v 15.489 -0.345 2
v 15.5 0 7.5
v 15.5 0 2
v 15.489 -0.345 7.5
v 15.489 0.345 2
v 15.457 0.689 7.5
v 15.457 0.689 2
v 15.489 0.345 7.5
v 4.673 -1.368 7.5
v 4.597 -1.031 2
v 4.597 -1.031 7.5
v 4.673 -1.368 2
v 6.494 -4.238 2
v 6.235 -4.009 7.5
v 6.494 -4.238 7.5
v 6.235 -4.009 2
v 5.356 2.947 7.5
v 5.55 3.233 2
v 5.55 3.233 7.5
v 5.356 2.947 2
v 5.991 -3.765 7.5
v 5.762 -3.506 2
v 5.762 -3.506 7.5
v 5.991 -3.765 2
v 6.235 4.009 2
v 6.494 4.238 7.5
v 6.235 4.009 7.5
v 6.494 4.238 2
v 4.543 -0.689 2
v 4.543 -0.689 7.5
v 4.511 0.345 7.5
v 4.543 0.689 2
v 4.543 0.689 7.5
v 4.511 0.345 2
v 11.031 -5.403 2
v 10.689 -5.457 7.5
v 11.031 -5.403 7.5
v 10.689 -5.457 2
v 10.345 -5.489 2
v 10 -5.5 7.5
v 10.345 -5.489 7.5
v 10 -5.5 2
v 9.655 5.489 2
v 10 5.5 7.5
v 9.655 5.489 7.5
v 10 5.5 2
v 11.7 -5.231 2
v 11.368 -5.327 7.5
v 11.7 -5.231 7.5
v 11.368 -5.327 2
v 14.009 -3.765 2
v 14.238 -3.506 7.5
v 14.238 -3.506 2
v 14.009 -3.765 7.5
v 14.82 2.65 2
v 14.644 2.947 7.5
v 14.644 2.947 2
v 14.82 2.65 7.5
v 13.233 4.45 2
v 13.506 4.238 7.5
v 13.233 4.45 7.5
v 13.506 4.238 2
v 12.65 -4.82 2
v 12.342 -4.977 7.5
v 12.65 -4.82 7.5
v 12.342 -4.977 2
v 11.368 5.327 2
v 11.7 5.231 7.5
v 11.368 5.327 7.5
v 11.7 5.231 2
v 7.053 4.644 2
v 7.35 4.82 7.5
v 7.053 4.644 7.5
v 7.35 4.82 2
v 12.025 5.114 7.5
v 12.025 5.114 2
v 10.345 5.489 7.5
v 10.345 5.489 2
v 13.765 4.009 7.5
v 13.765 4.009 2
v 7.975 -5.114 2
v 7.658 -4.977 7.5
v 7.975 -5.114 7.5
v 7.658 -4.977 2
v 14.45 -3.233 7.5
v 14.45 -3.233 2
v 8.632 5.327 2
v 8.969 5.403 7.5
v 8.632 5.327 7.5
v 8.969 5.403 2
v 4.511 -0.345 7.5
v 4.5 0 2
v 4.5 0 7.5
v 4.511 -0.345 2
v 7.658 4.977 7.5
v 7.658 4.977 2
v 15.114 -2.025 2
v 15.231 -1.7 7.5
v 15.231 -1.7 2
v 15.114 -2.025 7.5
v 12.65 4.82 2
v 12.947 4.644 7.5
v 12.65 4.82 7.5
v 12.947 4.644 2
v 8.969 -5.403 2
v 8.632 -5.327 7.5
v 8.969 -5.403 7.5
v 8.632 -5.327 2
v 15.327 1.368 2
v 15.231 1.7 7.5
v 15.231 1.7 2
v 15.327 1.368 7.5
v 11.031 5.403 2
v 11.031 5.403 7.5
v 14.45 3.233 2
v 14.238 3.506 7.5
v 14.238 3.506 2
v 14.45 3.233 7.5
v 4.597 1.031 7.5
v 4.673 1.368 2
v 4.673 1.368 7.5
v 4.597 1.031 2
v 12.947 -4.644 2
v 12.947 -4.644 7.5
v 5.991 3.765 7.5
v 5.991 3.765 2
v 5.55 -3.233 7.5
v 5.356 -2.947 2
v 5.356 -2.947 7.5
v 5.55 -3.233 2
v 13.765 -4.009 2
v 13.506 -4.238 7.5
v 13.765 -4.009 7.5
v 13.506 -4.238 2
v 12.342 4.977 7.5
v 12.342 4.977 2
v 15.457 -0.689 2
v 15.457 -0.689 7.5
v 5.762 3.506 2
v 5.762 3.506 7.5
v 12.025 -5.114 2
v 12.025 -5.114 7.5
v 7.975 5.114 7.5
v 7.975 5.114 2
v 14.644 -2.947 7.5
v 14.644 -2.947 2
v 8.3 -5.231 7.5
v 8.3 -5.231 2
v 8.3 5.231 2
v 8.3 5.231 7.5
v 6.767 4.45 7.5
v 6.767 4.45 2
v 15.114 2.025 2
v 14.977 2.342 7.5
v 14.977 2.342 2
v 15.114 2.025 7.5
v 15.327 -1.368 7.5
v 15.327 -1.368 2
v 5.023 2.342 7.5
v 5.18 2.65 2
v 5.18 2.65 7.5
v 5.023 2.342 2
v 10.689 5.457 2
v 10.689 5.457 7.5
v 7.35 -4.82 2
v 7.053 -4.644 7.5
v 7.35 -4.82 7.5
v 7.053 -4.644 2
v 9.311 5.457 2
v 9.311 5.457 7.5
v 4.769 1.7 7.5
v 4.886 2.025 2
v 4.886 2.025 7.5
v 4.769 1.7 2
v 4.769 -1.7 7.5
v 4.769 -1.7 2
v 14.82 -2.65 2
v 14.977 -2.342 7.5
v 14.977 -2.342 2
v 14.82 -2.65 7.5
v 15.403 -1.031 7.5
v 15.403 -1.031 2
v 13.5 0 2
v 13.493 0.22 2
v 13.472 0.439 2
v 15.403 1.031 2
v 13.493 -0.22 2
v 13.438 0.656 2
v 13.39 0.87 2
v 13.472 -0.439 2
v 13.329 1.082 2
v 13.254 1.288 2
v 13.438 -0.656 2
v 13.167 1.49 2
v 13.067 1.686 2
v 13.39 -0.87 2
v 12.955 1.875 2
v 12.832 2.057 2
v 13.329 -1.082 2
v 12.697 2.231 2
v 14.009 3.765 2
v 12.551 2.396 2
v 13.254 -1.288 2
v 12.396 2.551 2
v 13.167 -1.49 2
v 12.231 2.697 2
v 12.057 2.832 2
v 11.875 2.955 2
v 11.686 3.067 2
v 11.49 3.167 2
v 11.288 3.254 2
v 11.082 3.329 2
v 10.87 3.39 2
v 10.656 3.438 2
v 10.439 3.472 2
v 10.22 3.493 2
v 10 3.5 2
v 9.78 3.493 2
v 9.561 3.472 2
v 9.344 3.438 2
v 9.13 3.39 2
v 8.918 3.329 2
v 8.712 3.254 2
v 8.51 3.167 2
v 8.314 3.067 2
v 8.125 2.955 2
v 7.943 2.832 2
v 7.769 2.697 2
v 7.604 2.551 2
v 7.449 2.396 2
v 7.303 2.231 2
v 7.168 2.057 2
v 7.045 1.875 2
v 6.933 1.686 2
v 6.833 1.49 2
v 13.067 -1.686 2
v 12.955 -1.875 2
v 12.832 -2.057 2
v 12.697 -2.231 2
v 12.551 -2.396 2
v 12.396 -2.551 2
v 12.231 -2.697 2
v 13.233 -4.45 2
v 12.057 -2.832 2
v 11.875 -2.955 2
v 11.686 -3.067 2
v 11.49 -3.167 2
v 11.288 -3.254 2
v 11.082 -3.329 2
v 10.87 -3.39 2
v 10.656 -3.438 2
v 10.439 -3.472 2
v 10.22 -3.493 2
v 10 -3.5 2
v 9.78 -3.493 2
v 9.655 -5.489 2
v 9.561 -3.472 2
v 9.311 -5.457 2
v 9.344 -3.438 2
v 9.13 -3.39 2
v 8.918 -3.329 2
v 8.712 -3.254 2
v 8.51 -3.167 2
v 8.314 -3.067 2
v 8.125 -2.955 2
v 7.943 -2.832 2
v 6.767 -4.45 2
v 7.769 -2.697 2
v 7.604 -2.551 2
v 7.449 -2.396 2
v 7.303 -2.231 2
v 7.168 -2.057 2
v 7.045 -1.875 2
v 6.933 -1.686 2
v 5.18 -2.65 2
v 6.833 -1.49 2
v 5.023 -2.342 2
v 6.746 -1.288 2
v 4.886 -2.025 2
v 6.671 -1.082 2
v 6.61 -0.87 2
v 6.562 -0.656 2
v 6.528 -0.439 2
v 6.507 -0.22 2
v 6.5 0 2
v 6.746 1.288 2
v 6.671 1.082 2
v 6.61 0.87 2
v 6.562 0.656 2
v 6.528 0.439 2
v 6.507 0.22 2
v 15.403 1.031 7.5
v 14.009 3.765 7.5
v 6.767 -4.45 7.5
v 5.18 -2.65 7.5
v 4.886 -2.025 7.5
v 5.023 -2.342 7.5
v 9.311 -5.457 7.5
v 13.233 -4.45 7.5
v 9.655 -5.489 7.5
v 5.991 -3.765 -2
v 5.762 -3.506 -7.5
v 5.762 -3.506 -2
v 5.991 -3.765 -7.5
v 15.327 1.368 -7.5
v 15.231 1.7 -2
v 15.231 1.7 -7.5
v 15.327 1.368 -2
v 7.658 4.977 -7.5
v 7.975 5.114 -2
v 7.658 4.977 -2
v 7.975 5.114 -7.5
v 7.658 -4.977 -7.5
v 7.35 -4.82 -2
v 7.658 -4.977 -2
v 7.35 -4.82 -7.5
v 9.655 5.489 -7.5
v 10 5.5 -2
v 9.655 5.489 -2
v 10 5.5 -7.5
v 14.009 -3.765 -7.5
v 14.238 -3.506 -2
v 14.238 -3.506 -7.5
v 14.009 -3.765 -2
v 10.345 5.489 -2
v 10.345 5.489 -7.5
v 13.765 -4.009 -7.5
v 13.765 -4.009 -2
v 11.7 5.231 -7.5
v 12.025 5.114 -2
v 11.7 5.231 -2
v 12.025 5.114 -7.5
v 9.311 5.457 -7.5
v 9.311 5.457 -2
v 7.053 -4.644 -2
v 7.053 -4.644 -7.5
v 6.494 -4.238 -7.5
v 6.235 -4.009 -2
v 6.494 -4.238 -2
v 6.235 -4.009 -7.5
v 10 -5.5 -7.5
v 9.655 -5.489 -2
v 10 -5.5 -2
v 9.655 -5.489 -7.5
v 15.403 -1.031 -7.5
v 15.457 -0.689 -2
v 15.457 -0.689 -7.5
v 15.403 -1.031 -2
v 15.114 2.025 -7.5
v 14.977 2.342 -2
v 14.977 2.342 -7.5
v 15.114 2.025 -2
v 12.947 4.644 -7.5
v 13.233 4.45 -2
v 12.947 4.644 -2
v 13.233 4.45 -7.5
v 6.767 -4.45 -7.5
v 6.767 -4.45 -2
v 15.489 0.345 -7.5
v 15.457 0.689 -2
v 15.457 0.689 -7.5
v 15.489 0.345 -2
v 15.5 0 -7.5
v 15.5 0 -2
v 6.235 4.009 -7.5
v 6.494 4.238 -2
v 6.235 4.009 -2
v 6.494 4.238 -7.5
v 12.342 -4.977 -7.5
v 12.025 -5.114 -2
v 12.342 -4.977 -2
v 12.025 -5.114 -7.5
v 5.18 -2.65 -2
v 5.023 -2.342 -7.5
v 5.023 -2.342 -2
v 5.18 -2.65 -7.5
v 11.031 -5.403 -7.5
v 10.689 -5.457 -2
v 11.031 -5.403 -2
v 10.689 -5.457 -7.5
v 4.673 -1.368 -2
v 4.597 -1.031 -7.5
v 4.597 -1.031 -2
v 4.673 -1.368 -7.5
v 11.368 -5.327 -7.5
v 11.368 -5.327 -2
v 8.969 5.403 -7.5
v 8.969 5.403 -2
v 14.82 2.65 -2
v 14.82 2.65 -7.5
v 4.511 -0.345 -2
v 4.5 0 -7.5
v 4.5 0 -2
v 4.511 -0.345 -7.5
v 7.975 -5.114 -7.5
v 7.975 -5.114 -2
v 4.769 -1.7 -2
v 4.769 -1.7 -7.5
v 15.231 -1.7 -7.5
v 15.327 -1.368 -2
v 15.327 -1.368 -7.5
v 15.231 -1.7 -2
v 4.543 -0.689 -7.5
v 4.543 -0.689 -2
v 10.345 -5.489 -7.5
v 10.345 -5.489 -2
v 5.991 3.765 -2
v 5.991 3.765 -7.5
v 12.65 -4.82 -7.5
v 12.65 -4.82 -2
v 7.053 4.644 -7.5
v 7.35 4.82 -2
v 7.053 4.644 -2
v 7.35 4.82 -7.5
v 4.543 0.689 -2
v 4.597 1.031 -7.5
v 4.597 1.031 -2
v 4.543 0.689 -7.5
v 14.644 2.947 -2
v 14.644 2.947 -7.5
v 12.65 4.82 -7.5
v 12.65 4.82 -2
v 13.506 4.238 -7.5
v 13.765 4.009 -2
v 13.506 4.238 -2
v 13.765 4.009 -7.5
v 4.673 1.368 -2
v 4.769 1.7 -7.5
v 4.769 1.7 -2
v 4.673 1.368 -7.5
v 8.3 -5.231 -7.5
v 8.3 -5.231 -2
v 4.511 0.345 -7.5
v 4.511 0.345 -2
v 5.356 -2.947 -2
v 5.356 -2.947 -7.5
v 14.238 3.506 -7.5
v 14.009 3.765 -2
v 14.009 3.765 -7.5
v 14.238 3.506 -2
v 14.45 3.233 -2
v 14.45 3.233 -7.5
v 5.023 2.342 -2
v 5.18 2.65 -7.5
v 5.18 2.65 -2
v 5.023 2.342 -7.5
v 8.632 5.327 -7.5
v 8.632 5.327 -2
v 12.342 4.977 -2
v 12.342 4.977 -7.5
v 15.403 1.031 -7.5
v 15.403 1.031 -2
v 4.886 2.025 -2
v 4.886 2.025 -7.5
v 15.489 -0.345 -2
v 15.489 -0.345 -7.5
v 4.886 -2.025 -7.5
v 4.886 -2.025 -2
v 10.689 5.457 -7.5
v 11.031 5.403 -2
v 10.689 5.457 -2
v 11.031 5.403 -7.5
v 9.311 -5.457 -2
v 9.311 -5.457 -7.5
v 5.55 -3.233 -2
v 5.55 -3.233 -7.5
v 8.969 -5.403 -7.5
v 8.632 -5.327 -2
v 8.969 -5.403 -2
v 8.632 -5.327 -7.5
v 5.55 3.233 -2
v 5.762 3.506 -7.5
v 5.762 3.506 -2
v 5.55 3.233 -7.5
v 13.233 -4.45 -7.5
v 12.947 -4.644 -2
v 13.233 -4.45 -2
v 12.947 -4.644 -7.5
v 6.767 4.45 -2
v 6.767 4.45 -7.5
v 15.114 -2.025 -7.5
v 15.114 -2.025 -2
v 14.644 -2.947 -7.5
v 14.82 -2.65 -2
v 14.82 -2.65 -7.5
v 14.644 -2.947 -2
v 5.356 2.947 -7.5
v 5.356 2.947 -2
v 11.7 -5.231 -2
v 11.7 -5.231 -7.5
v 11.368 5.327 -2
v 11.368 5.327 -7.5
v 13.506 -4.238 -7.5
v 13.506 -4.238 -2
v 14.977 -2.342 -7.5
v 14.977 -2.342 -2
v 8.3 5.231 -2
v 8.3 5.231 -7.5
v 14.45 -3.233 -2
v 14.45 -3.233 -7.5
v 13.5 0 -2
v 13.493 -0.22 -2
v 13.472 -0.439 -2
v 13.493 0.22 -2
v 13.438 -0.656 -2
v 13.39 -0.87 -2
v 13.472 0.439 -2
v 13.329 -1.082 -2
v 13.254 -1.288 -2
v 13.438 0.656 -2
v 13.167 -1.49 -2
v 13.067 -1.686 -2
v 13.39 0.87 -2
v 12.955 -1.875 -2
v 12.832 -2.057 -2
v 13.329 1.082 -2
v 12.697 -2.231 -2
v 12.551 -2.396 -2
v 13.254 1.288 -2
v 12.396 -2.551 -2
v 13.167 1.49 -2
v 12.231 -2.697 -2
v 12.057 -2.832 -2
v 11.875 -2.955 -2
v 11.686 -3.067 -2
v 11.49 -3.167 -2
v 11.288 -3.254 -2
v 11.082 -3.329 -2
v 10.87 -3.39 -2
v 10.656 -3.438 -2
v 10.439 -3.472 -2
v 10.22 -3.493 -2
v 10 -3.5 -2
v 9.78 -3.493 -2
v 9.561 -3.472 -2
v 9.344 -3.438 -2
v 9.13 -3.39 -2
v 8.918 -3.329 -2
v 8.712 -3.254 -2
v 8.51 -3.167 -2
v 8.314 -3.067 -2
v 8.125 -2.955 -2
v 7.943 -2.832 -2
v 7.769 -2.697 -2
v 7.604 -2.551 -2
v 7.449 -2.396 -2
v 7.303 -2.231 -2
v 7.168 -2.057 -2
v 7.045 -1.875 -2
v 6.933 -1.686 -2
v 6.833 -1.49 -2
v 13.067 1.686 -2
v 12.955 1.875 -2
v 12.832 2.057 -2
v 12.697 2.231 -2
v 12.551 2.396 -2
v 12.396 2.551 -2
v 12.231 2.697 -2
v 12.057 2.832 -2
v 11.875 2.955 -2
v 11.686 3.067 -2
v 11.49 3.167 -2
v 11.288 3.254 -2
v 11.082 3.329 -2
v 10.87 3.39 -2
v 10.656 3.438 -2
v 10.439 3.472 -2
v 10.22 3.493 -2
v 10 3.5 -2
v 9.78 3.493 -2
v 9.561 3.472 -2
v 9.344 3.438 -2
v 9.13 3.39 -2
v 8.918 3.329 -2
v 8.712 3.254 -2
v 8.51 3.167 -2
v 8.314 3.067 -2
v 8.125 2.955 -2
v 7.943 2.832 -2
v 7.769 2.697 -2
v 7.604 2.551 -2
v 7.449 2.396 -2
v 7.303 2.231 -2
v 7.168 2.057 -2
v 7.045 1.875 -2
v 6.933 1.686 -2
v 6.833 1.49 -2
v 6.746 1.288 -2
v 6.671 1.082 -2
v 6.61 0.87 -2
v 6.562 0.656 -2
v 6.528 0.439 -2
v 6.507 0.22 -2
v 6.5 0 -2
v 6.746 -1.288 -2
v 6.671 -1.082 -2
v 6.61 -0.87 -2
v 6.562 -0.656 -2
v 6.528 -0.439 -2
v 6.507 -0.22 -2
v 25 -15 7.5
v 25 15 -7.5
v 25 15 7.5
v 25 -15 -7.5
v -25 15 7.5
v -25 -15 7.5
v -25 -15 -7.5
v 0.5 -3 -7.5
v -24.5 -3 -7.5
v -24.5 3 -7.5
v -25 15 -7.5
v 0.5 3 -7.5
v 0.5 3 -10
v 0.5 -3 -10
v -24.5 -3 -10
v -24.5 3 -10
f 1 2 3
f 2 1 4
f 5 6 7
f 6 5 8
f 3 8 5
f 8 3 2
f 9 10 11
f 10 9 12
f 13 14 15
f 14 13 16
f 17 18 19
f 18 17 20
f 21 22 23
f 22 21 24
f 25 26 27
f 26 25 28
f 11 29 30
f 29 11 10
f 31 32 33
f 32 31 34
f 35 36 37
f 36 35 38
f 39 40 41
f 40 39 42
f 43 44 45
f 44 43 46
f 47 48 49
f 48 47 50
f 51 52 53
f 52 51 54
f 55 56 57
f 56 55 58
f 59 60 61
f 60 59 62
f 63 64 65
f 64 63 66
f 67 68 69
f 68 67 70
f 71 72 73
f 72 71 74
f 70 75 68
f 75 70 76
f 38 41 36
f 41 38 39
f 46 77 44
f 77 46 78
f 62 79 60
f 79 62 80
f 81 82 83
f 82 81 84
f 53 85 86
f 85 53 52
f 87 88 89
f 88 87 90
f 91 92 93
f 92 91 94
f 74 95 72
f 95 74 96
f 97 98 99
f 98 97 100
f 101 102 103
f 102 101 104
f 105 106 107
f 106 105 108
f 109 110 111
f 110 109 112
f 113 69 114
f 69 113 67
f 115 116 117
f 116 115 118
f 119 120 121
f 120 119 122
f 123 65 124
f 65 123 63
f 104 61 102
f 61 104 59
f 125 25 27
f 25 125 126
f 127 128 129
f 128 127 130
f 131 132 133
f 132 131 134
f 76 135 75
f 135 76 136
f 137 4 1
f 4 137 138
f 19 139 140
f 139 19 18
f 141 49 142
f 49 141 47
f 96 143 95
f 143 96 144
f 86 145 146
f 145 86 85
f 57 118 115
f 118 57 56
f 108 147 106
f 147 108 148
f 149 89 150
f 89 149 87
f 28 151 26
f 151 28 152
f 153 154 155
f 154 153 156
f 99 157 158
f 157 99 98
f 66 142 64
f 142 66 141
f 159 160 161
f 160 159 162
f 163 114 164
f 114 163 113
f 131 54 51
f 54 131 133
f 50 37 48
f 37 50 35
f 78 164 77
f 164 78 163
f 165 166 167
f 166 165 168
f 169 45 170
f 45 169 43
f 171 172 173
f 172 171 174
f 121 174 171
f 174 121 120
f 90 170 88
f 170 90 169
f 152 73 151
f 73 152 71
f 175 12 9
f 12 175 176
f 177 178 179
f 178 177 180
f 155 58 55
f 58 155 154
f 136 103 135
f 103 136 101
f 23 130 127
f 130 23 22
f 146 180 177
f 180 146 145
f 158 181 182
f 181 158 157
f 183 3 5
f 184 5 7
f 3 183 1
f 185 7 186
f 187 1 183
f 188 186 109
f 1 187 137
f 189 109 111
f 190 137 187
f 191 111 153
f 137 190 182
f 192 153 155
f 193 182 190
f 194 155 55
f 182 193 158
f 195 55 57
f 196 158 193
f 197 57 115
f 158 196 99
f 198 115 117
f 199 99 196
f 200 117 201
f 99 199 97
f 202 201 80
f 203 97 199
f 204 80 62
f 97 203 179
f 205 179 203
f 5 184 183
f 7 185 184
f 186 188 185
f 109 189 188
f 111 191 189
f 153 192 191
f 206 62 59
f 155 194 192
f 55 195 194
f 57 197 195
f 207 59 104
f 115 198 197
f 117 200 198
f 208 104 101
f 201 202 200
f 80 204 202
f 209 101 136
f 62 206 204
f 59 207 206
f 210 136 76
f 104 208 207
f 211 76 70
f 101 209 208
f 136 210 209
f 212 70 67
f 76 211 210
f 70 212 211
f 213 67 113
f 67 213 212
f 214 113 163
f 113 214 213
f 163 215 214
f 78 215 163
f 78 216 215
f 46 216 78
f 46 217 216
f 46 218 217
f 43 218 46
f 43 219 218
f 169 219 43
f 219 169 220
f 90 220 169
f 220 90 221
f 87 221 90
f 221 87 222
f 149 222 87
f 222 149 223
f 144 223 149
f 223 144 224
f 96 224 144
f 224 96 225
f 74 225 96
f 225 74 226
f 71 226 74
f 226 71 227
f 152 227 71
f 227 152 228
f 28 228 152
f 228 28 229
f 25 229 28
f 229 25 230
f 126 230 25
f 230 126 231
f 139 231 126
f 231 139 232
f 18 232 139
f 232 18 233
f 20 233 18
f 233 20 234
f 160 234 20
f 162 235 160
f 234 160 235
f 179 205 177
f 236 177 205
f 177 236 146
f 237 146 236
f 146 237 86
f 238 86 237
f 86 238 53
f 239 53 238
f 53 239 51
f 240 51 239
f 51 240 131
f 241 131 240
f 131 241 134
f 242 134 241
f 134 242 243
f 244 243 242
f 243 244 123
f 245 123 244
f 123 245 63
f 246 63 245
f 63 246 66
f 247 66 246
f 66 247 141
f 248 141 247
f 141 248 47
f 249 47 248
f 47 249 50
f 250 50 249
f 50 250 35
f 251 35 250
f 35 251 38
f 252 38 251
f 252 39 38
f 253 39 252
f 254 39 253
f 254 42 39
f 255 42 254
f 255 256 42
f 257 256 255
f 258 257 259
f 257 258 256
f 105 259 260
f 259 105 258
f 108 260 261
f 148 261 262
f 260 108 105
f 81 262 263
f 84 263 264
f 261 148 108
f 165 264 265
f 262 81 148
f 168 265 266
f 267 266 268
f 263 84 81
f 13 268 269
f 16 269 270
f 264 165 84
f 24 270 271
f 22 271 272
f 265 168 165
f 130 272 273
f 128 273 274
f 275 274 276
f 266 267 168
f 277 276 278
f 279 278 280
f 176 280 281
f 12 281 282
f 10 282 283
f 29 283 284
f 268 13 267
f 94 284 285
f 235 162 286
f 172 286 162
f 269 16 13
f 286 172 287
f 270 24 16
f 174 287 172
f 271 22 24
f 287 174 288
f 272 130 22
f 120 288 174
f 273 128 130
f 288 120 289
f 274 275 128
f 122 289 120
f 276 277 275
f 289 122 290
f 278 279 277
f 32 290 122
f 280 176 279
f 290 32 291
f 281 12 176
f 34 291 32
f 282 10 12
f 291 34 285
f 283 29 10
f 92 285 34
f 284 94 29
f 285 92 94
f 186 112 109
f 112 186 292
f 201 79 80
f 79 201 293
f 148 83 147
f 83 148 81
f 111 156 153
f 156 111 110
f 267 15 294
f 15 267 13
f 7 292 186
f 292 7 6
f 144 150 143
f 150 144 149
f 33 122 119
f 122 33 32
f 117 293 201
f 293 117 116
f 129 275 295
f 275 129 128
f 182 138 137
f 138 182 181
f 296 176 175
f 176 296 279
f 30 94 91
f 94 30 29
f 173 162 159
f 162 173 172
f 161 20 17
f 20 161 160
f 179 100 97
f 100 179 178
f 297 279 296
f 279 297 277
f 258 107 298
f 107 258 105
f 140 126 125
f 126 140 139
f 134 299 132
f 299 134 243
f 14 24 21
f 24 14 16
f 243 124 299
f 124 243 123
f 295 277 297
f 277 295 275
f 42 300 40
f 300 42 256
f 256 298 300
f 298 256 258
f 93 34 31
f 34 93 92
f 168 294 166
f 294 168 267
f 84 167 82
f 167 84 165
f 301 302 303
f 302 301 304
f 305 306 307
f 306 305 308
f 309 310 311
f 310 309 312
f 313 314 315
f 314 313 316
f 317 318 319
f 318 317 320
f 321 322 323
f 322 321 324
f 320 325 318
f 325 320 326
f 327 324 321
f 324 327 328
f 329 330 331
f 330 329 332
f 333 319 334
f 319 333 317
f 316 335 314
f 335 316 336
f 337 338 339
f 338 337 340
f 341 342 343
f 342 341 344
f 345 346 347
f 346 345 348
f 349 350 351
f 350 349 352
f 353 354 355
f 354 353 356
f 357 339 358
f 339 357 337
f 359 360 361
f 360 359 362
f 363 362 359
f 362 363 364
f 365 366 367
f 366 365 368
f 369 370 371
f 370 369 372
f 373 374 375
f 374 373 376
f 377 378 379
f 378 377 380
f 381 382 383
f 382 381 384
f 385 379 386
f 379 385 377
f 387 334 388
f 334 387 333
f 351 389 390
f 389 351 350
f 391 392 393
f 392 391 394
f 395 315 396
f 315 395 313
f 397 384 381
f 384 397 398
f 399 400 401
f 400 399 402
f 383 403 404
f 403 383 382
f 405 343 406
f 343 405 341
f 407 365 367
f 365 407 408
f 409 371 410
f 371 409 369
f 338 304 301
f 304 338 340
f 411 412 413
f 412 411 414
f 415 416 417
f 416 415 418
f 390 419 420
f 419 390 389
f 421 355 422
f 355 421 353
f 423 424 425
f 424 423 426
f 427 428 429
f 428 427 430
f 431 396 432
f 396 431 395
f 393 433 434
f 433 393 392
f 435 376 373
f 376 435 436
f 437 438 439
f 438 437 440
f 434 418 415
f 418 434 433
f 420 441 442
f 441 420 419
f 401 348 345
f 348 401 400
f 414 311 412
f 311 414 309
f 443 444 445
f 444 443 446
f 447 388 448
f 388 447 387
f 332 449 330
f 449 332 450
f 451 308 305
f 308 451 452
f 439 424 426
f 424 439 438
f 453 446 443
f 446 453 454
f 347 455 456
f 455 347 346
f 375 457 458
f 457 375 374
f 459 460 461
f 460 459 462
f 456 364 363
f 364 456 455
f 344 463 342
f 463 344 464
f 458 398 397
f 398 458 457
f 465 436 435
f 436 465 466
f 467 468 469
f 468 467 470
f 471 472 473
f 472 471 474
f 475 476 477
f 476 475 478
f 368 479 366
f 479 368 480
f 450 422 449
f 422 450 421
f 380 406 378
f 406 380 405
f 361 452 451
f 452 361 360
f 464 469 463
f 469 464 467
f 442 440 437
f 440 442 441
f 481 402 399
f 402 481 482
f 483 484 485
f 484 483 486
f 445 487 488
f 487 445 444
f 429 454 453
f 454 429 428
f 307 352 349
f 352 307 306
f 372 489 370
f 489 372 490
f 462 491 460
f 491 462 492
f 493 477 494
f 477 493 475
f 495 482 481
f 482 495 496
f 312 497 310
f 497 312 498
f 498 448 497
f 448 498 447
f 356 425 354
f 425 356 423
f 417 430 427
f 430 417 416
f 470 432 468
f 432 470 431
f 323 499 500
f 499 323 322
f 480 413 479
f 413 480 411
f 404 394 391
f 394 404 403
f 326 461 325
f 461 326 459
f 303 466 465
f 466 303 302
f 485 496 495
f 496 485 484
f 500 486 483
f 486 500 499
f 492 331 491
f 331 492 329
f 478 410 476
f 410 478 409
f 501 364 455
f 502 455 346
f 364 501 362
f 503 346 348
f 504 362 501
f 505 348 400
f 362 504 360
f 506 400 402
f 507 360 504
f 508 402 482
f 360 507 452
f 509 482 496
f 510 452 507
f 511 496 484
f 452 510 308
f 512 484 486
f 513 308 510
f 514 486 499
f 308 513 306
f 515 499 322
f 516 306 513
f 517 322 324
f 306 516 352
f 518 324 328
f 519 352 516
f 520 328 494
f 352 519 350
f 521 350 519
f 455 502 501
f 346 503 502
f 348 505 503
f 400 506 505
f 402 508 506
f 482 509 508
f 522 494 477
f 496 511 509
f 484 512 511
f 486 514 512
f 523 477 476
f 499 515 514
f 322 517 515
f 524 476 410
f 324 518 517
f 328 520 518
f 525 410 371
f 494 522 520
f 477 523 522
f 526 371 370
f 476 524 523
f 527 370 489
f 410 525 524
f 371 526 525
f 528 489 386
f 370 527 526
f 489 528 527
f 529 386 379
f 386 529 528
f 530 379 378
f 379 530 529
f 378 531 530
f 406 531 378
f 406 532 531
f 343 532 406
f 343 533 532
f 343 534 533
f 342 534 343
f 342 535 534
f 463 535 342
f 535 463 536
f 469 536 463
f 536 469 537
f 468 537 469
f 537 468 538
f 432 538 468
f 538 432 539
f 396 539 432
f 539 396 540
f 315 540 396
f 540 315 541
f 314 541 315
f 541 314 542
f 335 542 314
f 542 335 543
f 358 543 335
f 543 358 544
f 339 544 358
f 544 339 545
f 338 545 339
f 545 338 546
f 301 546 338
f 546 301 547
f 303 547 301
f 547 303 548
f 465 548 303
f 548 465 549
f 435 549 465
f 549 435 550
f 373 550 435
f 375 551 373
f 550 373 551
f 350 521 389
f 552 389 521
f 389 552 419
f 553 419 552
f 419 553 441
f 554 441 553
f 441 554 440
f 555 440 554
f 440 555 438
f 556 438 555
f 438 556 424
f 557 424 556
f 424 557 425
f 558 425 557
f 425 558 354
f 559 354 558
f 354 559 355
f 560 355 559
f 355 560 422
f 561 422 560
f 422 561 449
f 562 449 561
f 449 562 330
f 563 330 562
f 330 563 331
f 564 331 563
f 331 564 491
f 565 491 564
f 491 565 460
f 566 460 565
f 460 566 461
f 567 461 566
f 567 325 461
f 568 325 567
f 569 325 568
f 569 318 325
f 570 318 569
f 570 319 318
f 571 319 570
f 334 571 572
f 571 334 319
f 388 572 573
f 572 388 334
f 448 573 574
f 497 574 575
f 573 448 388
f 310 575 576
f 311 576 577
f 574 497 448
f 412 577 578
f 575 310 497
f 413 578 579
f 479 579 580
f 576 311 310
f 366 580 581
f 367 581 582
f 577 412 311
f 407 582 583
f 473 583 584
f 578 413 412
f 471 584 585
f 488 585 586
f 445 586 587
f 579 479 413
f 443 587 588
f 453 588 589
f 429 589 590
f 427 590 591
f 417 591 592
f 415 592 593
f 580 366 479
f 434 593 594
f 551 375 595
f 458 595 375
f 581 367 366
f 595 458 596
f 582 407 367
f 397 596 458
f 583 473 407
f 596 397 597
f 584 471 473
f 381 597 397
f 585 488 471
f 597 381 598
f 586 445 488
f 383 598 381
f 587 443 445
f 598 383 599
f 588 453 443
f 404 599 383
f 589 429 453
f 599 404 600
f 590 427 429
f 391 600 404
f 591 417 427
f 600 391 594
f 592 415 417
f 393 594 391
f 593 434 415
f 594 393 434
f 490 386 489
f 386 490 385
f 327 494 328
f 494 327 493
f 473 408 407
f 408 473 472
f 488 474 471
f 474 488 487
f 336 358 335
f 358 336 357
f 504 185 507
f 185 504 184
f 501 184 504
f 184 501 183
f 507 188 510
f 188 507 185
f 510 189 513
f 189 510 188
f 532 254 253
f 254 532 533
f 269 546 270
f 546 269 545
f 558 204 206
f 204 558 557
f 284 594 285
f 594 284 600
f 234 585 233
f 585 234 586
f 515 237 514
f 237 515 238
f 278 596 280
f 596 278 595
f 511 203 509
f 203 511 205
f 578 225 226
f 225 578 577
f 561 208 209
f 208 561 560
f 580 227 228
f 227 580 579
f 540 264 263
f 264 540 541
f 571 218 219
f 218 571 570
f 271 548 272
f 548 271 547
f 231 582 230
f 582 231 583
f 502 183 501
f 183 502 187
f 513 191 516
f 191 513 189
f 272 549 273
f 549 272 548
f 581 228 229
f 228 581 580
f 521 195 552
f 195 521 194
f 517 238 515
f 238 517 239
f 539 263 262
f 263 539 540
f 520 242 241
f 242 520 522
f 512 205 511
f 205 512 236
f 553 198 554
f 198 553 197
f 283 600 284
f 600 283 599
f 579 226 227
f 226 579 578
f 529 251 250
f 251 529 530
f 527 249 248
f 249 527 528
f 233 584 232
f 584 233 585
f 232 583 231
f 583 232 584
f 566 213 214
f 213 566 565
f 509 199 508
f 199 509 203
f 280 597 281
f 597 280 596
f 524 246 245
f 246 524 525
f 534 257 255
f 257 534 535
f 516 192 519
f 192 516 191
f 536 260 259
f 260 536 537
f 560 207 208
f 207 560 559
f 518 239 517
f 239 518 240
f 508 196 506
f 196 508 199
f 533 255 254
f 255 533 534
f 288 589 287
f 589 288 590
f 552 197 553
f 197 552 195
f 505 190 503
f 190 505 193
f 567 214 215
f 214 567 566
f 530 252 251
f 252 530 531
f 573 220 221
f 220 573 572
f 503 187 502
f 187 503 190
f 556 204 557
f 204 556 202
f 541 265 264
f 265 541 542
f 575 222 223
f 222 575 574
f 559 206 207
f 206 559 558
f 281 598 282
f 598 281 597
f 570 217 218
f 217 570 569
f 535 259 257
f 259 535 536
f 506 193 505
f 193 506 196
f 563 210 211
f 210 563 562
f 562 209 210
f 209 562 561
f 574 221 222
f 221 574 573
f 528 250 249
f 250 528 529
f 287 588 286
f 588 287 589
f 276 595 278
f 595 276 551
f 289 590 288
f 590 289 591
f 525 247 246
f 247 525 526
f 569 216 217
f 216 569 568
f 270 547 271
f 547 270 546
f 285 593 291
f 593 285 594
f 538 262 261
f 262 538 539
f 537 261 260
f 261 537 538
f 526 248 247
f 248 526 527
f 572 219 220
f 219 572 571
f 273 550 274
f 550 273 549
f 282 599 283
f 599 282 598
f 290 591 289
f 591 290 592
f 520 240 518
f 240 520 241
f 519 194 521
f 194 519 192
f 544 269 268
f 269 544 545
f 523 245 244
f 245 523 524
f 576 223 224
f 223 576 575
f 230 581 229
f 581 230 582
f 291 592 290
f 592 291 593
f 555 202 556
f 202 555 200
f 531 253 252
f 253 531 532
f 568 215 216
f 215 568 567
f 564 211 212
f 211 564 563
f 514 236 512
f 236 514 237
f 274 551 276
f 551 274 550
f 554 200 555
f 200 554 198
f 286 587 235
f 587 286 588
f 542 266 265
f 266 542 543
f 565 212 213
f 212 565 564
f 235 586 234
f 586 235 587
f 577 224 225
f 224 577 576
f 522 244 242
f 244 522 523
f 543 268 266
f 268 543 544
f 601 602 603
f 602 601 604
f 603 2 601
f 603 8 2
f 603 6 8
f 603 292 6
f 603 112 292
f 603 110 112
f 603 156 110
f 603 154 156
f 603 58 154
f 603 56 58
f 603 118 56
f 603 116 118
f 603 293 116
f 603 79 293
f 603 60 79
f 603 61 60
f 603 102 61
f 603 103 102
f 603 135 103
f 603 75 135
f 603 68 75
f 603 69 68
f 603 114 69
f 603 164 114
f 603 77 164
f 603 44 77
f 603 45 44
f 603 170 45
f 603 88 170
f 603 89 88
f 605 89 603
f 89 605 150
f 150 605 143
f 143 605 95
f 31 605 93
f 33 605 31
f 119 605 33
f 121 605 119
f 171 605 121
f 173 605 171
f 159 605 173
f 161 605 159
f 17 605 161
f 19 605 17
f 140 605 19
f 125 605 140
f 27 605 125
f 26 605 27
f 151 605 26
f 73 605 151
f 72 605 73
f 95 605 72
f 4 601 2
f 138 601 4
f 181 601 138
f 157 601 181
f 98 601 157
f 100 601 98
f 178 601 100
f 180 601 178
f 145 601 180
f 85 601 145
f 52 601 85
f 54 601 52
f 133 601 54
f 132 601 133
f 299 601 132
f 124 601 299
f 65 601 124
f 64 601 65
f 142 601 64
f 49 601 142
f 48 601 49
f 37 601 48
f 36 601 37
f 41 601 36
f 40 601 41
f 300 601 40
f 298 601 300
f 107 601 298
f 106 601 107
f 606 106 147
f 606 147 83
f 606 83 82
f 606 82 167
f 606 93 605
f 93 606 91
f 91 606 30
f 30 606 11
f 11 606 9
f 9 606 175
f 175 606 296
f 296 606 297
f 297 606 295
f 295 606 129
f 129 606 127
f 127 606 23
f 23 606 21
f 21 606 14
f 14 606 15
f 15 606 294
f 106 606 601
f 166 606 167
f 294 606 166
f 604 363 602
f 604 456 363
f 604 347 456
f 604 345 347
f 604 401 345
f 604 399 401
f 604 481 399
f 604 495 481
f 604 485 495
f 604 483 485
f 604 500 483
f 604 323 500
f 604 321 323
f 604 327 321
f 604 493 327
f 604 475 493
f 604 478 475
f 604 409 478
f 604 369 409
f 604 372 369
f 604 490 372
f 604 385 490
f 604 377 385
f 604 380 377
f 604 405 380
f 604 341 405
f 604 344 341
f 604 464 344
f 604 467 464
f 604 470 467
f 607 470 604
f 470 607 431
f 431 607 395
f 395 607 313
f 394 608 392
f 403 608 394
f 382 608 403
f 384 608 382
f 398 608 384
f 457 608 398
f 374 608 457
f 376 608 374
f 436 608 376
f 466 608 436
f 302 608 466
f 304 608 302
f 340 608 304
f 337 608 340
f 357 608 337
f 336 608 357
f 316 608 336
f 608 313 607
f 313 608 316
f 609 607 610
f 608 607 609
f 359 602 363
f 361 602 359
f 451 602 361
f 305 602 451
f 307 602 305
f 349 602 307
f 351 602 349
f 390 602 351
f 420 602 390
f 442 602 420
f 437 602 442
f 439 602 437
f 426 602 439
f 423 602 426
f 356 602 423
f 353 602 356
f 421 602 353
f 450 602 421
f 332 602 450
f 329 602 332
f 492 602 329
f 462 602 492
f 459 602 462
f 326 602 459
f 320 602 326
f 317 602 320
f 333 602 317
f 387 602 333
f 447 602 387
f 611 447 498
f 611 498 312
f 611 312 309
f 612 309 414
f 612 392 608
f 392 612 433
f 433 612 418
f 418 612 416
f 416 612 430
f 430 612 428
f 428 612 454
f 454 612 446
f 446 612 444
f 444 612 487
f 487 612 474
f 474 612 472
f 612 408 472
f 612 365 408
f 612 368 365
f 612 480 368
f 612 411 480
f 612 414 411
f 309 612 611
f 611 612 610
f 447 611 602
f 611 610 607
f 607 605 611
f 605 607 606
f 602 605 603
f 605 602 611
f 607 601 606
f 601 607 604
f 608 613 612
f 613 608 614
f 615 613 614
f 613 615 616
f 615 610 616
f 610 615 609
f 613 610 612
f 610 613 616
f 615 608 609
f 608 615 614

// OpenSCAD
$fn=100;

difference() {
    cube([50,30,15],true);

    translate([50/2-15,0,0]) {
        translate([0,0,5]) cylinder(h=6,d=11,center=true);  // Mutter 1
        translate([0,0,-5]) cylinder(h=6,d=11,center=true);  // Mutter 2
        cylinder(h=20,d=7,center=true);  // Mutter 1

    }
}

translate([-12,0,-5])
cube([25,6,10],true);
